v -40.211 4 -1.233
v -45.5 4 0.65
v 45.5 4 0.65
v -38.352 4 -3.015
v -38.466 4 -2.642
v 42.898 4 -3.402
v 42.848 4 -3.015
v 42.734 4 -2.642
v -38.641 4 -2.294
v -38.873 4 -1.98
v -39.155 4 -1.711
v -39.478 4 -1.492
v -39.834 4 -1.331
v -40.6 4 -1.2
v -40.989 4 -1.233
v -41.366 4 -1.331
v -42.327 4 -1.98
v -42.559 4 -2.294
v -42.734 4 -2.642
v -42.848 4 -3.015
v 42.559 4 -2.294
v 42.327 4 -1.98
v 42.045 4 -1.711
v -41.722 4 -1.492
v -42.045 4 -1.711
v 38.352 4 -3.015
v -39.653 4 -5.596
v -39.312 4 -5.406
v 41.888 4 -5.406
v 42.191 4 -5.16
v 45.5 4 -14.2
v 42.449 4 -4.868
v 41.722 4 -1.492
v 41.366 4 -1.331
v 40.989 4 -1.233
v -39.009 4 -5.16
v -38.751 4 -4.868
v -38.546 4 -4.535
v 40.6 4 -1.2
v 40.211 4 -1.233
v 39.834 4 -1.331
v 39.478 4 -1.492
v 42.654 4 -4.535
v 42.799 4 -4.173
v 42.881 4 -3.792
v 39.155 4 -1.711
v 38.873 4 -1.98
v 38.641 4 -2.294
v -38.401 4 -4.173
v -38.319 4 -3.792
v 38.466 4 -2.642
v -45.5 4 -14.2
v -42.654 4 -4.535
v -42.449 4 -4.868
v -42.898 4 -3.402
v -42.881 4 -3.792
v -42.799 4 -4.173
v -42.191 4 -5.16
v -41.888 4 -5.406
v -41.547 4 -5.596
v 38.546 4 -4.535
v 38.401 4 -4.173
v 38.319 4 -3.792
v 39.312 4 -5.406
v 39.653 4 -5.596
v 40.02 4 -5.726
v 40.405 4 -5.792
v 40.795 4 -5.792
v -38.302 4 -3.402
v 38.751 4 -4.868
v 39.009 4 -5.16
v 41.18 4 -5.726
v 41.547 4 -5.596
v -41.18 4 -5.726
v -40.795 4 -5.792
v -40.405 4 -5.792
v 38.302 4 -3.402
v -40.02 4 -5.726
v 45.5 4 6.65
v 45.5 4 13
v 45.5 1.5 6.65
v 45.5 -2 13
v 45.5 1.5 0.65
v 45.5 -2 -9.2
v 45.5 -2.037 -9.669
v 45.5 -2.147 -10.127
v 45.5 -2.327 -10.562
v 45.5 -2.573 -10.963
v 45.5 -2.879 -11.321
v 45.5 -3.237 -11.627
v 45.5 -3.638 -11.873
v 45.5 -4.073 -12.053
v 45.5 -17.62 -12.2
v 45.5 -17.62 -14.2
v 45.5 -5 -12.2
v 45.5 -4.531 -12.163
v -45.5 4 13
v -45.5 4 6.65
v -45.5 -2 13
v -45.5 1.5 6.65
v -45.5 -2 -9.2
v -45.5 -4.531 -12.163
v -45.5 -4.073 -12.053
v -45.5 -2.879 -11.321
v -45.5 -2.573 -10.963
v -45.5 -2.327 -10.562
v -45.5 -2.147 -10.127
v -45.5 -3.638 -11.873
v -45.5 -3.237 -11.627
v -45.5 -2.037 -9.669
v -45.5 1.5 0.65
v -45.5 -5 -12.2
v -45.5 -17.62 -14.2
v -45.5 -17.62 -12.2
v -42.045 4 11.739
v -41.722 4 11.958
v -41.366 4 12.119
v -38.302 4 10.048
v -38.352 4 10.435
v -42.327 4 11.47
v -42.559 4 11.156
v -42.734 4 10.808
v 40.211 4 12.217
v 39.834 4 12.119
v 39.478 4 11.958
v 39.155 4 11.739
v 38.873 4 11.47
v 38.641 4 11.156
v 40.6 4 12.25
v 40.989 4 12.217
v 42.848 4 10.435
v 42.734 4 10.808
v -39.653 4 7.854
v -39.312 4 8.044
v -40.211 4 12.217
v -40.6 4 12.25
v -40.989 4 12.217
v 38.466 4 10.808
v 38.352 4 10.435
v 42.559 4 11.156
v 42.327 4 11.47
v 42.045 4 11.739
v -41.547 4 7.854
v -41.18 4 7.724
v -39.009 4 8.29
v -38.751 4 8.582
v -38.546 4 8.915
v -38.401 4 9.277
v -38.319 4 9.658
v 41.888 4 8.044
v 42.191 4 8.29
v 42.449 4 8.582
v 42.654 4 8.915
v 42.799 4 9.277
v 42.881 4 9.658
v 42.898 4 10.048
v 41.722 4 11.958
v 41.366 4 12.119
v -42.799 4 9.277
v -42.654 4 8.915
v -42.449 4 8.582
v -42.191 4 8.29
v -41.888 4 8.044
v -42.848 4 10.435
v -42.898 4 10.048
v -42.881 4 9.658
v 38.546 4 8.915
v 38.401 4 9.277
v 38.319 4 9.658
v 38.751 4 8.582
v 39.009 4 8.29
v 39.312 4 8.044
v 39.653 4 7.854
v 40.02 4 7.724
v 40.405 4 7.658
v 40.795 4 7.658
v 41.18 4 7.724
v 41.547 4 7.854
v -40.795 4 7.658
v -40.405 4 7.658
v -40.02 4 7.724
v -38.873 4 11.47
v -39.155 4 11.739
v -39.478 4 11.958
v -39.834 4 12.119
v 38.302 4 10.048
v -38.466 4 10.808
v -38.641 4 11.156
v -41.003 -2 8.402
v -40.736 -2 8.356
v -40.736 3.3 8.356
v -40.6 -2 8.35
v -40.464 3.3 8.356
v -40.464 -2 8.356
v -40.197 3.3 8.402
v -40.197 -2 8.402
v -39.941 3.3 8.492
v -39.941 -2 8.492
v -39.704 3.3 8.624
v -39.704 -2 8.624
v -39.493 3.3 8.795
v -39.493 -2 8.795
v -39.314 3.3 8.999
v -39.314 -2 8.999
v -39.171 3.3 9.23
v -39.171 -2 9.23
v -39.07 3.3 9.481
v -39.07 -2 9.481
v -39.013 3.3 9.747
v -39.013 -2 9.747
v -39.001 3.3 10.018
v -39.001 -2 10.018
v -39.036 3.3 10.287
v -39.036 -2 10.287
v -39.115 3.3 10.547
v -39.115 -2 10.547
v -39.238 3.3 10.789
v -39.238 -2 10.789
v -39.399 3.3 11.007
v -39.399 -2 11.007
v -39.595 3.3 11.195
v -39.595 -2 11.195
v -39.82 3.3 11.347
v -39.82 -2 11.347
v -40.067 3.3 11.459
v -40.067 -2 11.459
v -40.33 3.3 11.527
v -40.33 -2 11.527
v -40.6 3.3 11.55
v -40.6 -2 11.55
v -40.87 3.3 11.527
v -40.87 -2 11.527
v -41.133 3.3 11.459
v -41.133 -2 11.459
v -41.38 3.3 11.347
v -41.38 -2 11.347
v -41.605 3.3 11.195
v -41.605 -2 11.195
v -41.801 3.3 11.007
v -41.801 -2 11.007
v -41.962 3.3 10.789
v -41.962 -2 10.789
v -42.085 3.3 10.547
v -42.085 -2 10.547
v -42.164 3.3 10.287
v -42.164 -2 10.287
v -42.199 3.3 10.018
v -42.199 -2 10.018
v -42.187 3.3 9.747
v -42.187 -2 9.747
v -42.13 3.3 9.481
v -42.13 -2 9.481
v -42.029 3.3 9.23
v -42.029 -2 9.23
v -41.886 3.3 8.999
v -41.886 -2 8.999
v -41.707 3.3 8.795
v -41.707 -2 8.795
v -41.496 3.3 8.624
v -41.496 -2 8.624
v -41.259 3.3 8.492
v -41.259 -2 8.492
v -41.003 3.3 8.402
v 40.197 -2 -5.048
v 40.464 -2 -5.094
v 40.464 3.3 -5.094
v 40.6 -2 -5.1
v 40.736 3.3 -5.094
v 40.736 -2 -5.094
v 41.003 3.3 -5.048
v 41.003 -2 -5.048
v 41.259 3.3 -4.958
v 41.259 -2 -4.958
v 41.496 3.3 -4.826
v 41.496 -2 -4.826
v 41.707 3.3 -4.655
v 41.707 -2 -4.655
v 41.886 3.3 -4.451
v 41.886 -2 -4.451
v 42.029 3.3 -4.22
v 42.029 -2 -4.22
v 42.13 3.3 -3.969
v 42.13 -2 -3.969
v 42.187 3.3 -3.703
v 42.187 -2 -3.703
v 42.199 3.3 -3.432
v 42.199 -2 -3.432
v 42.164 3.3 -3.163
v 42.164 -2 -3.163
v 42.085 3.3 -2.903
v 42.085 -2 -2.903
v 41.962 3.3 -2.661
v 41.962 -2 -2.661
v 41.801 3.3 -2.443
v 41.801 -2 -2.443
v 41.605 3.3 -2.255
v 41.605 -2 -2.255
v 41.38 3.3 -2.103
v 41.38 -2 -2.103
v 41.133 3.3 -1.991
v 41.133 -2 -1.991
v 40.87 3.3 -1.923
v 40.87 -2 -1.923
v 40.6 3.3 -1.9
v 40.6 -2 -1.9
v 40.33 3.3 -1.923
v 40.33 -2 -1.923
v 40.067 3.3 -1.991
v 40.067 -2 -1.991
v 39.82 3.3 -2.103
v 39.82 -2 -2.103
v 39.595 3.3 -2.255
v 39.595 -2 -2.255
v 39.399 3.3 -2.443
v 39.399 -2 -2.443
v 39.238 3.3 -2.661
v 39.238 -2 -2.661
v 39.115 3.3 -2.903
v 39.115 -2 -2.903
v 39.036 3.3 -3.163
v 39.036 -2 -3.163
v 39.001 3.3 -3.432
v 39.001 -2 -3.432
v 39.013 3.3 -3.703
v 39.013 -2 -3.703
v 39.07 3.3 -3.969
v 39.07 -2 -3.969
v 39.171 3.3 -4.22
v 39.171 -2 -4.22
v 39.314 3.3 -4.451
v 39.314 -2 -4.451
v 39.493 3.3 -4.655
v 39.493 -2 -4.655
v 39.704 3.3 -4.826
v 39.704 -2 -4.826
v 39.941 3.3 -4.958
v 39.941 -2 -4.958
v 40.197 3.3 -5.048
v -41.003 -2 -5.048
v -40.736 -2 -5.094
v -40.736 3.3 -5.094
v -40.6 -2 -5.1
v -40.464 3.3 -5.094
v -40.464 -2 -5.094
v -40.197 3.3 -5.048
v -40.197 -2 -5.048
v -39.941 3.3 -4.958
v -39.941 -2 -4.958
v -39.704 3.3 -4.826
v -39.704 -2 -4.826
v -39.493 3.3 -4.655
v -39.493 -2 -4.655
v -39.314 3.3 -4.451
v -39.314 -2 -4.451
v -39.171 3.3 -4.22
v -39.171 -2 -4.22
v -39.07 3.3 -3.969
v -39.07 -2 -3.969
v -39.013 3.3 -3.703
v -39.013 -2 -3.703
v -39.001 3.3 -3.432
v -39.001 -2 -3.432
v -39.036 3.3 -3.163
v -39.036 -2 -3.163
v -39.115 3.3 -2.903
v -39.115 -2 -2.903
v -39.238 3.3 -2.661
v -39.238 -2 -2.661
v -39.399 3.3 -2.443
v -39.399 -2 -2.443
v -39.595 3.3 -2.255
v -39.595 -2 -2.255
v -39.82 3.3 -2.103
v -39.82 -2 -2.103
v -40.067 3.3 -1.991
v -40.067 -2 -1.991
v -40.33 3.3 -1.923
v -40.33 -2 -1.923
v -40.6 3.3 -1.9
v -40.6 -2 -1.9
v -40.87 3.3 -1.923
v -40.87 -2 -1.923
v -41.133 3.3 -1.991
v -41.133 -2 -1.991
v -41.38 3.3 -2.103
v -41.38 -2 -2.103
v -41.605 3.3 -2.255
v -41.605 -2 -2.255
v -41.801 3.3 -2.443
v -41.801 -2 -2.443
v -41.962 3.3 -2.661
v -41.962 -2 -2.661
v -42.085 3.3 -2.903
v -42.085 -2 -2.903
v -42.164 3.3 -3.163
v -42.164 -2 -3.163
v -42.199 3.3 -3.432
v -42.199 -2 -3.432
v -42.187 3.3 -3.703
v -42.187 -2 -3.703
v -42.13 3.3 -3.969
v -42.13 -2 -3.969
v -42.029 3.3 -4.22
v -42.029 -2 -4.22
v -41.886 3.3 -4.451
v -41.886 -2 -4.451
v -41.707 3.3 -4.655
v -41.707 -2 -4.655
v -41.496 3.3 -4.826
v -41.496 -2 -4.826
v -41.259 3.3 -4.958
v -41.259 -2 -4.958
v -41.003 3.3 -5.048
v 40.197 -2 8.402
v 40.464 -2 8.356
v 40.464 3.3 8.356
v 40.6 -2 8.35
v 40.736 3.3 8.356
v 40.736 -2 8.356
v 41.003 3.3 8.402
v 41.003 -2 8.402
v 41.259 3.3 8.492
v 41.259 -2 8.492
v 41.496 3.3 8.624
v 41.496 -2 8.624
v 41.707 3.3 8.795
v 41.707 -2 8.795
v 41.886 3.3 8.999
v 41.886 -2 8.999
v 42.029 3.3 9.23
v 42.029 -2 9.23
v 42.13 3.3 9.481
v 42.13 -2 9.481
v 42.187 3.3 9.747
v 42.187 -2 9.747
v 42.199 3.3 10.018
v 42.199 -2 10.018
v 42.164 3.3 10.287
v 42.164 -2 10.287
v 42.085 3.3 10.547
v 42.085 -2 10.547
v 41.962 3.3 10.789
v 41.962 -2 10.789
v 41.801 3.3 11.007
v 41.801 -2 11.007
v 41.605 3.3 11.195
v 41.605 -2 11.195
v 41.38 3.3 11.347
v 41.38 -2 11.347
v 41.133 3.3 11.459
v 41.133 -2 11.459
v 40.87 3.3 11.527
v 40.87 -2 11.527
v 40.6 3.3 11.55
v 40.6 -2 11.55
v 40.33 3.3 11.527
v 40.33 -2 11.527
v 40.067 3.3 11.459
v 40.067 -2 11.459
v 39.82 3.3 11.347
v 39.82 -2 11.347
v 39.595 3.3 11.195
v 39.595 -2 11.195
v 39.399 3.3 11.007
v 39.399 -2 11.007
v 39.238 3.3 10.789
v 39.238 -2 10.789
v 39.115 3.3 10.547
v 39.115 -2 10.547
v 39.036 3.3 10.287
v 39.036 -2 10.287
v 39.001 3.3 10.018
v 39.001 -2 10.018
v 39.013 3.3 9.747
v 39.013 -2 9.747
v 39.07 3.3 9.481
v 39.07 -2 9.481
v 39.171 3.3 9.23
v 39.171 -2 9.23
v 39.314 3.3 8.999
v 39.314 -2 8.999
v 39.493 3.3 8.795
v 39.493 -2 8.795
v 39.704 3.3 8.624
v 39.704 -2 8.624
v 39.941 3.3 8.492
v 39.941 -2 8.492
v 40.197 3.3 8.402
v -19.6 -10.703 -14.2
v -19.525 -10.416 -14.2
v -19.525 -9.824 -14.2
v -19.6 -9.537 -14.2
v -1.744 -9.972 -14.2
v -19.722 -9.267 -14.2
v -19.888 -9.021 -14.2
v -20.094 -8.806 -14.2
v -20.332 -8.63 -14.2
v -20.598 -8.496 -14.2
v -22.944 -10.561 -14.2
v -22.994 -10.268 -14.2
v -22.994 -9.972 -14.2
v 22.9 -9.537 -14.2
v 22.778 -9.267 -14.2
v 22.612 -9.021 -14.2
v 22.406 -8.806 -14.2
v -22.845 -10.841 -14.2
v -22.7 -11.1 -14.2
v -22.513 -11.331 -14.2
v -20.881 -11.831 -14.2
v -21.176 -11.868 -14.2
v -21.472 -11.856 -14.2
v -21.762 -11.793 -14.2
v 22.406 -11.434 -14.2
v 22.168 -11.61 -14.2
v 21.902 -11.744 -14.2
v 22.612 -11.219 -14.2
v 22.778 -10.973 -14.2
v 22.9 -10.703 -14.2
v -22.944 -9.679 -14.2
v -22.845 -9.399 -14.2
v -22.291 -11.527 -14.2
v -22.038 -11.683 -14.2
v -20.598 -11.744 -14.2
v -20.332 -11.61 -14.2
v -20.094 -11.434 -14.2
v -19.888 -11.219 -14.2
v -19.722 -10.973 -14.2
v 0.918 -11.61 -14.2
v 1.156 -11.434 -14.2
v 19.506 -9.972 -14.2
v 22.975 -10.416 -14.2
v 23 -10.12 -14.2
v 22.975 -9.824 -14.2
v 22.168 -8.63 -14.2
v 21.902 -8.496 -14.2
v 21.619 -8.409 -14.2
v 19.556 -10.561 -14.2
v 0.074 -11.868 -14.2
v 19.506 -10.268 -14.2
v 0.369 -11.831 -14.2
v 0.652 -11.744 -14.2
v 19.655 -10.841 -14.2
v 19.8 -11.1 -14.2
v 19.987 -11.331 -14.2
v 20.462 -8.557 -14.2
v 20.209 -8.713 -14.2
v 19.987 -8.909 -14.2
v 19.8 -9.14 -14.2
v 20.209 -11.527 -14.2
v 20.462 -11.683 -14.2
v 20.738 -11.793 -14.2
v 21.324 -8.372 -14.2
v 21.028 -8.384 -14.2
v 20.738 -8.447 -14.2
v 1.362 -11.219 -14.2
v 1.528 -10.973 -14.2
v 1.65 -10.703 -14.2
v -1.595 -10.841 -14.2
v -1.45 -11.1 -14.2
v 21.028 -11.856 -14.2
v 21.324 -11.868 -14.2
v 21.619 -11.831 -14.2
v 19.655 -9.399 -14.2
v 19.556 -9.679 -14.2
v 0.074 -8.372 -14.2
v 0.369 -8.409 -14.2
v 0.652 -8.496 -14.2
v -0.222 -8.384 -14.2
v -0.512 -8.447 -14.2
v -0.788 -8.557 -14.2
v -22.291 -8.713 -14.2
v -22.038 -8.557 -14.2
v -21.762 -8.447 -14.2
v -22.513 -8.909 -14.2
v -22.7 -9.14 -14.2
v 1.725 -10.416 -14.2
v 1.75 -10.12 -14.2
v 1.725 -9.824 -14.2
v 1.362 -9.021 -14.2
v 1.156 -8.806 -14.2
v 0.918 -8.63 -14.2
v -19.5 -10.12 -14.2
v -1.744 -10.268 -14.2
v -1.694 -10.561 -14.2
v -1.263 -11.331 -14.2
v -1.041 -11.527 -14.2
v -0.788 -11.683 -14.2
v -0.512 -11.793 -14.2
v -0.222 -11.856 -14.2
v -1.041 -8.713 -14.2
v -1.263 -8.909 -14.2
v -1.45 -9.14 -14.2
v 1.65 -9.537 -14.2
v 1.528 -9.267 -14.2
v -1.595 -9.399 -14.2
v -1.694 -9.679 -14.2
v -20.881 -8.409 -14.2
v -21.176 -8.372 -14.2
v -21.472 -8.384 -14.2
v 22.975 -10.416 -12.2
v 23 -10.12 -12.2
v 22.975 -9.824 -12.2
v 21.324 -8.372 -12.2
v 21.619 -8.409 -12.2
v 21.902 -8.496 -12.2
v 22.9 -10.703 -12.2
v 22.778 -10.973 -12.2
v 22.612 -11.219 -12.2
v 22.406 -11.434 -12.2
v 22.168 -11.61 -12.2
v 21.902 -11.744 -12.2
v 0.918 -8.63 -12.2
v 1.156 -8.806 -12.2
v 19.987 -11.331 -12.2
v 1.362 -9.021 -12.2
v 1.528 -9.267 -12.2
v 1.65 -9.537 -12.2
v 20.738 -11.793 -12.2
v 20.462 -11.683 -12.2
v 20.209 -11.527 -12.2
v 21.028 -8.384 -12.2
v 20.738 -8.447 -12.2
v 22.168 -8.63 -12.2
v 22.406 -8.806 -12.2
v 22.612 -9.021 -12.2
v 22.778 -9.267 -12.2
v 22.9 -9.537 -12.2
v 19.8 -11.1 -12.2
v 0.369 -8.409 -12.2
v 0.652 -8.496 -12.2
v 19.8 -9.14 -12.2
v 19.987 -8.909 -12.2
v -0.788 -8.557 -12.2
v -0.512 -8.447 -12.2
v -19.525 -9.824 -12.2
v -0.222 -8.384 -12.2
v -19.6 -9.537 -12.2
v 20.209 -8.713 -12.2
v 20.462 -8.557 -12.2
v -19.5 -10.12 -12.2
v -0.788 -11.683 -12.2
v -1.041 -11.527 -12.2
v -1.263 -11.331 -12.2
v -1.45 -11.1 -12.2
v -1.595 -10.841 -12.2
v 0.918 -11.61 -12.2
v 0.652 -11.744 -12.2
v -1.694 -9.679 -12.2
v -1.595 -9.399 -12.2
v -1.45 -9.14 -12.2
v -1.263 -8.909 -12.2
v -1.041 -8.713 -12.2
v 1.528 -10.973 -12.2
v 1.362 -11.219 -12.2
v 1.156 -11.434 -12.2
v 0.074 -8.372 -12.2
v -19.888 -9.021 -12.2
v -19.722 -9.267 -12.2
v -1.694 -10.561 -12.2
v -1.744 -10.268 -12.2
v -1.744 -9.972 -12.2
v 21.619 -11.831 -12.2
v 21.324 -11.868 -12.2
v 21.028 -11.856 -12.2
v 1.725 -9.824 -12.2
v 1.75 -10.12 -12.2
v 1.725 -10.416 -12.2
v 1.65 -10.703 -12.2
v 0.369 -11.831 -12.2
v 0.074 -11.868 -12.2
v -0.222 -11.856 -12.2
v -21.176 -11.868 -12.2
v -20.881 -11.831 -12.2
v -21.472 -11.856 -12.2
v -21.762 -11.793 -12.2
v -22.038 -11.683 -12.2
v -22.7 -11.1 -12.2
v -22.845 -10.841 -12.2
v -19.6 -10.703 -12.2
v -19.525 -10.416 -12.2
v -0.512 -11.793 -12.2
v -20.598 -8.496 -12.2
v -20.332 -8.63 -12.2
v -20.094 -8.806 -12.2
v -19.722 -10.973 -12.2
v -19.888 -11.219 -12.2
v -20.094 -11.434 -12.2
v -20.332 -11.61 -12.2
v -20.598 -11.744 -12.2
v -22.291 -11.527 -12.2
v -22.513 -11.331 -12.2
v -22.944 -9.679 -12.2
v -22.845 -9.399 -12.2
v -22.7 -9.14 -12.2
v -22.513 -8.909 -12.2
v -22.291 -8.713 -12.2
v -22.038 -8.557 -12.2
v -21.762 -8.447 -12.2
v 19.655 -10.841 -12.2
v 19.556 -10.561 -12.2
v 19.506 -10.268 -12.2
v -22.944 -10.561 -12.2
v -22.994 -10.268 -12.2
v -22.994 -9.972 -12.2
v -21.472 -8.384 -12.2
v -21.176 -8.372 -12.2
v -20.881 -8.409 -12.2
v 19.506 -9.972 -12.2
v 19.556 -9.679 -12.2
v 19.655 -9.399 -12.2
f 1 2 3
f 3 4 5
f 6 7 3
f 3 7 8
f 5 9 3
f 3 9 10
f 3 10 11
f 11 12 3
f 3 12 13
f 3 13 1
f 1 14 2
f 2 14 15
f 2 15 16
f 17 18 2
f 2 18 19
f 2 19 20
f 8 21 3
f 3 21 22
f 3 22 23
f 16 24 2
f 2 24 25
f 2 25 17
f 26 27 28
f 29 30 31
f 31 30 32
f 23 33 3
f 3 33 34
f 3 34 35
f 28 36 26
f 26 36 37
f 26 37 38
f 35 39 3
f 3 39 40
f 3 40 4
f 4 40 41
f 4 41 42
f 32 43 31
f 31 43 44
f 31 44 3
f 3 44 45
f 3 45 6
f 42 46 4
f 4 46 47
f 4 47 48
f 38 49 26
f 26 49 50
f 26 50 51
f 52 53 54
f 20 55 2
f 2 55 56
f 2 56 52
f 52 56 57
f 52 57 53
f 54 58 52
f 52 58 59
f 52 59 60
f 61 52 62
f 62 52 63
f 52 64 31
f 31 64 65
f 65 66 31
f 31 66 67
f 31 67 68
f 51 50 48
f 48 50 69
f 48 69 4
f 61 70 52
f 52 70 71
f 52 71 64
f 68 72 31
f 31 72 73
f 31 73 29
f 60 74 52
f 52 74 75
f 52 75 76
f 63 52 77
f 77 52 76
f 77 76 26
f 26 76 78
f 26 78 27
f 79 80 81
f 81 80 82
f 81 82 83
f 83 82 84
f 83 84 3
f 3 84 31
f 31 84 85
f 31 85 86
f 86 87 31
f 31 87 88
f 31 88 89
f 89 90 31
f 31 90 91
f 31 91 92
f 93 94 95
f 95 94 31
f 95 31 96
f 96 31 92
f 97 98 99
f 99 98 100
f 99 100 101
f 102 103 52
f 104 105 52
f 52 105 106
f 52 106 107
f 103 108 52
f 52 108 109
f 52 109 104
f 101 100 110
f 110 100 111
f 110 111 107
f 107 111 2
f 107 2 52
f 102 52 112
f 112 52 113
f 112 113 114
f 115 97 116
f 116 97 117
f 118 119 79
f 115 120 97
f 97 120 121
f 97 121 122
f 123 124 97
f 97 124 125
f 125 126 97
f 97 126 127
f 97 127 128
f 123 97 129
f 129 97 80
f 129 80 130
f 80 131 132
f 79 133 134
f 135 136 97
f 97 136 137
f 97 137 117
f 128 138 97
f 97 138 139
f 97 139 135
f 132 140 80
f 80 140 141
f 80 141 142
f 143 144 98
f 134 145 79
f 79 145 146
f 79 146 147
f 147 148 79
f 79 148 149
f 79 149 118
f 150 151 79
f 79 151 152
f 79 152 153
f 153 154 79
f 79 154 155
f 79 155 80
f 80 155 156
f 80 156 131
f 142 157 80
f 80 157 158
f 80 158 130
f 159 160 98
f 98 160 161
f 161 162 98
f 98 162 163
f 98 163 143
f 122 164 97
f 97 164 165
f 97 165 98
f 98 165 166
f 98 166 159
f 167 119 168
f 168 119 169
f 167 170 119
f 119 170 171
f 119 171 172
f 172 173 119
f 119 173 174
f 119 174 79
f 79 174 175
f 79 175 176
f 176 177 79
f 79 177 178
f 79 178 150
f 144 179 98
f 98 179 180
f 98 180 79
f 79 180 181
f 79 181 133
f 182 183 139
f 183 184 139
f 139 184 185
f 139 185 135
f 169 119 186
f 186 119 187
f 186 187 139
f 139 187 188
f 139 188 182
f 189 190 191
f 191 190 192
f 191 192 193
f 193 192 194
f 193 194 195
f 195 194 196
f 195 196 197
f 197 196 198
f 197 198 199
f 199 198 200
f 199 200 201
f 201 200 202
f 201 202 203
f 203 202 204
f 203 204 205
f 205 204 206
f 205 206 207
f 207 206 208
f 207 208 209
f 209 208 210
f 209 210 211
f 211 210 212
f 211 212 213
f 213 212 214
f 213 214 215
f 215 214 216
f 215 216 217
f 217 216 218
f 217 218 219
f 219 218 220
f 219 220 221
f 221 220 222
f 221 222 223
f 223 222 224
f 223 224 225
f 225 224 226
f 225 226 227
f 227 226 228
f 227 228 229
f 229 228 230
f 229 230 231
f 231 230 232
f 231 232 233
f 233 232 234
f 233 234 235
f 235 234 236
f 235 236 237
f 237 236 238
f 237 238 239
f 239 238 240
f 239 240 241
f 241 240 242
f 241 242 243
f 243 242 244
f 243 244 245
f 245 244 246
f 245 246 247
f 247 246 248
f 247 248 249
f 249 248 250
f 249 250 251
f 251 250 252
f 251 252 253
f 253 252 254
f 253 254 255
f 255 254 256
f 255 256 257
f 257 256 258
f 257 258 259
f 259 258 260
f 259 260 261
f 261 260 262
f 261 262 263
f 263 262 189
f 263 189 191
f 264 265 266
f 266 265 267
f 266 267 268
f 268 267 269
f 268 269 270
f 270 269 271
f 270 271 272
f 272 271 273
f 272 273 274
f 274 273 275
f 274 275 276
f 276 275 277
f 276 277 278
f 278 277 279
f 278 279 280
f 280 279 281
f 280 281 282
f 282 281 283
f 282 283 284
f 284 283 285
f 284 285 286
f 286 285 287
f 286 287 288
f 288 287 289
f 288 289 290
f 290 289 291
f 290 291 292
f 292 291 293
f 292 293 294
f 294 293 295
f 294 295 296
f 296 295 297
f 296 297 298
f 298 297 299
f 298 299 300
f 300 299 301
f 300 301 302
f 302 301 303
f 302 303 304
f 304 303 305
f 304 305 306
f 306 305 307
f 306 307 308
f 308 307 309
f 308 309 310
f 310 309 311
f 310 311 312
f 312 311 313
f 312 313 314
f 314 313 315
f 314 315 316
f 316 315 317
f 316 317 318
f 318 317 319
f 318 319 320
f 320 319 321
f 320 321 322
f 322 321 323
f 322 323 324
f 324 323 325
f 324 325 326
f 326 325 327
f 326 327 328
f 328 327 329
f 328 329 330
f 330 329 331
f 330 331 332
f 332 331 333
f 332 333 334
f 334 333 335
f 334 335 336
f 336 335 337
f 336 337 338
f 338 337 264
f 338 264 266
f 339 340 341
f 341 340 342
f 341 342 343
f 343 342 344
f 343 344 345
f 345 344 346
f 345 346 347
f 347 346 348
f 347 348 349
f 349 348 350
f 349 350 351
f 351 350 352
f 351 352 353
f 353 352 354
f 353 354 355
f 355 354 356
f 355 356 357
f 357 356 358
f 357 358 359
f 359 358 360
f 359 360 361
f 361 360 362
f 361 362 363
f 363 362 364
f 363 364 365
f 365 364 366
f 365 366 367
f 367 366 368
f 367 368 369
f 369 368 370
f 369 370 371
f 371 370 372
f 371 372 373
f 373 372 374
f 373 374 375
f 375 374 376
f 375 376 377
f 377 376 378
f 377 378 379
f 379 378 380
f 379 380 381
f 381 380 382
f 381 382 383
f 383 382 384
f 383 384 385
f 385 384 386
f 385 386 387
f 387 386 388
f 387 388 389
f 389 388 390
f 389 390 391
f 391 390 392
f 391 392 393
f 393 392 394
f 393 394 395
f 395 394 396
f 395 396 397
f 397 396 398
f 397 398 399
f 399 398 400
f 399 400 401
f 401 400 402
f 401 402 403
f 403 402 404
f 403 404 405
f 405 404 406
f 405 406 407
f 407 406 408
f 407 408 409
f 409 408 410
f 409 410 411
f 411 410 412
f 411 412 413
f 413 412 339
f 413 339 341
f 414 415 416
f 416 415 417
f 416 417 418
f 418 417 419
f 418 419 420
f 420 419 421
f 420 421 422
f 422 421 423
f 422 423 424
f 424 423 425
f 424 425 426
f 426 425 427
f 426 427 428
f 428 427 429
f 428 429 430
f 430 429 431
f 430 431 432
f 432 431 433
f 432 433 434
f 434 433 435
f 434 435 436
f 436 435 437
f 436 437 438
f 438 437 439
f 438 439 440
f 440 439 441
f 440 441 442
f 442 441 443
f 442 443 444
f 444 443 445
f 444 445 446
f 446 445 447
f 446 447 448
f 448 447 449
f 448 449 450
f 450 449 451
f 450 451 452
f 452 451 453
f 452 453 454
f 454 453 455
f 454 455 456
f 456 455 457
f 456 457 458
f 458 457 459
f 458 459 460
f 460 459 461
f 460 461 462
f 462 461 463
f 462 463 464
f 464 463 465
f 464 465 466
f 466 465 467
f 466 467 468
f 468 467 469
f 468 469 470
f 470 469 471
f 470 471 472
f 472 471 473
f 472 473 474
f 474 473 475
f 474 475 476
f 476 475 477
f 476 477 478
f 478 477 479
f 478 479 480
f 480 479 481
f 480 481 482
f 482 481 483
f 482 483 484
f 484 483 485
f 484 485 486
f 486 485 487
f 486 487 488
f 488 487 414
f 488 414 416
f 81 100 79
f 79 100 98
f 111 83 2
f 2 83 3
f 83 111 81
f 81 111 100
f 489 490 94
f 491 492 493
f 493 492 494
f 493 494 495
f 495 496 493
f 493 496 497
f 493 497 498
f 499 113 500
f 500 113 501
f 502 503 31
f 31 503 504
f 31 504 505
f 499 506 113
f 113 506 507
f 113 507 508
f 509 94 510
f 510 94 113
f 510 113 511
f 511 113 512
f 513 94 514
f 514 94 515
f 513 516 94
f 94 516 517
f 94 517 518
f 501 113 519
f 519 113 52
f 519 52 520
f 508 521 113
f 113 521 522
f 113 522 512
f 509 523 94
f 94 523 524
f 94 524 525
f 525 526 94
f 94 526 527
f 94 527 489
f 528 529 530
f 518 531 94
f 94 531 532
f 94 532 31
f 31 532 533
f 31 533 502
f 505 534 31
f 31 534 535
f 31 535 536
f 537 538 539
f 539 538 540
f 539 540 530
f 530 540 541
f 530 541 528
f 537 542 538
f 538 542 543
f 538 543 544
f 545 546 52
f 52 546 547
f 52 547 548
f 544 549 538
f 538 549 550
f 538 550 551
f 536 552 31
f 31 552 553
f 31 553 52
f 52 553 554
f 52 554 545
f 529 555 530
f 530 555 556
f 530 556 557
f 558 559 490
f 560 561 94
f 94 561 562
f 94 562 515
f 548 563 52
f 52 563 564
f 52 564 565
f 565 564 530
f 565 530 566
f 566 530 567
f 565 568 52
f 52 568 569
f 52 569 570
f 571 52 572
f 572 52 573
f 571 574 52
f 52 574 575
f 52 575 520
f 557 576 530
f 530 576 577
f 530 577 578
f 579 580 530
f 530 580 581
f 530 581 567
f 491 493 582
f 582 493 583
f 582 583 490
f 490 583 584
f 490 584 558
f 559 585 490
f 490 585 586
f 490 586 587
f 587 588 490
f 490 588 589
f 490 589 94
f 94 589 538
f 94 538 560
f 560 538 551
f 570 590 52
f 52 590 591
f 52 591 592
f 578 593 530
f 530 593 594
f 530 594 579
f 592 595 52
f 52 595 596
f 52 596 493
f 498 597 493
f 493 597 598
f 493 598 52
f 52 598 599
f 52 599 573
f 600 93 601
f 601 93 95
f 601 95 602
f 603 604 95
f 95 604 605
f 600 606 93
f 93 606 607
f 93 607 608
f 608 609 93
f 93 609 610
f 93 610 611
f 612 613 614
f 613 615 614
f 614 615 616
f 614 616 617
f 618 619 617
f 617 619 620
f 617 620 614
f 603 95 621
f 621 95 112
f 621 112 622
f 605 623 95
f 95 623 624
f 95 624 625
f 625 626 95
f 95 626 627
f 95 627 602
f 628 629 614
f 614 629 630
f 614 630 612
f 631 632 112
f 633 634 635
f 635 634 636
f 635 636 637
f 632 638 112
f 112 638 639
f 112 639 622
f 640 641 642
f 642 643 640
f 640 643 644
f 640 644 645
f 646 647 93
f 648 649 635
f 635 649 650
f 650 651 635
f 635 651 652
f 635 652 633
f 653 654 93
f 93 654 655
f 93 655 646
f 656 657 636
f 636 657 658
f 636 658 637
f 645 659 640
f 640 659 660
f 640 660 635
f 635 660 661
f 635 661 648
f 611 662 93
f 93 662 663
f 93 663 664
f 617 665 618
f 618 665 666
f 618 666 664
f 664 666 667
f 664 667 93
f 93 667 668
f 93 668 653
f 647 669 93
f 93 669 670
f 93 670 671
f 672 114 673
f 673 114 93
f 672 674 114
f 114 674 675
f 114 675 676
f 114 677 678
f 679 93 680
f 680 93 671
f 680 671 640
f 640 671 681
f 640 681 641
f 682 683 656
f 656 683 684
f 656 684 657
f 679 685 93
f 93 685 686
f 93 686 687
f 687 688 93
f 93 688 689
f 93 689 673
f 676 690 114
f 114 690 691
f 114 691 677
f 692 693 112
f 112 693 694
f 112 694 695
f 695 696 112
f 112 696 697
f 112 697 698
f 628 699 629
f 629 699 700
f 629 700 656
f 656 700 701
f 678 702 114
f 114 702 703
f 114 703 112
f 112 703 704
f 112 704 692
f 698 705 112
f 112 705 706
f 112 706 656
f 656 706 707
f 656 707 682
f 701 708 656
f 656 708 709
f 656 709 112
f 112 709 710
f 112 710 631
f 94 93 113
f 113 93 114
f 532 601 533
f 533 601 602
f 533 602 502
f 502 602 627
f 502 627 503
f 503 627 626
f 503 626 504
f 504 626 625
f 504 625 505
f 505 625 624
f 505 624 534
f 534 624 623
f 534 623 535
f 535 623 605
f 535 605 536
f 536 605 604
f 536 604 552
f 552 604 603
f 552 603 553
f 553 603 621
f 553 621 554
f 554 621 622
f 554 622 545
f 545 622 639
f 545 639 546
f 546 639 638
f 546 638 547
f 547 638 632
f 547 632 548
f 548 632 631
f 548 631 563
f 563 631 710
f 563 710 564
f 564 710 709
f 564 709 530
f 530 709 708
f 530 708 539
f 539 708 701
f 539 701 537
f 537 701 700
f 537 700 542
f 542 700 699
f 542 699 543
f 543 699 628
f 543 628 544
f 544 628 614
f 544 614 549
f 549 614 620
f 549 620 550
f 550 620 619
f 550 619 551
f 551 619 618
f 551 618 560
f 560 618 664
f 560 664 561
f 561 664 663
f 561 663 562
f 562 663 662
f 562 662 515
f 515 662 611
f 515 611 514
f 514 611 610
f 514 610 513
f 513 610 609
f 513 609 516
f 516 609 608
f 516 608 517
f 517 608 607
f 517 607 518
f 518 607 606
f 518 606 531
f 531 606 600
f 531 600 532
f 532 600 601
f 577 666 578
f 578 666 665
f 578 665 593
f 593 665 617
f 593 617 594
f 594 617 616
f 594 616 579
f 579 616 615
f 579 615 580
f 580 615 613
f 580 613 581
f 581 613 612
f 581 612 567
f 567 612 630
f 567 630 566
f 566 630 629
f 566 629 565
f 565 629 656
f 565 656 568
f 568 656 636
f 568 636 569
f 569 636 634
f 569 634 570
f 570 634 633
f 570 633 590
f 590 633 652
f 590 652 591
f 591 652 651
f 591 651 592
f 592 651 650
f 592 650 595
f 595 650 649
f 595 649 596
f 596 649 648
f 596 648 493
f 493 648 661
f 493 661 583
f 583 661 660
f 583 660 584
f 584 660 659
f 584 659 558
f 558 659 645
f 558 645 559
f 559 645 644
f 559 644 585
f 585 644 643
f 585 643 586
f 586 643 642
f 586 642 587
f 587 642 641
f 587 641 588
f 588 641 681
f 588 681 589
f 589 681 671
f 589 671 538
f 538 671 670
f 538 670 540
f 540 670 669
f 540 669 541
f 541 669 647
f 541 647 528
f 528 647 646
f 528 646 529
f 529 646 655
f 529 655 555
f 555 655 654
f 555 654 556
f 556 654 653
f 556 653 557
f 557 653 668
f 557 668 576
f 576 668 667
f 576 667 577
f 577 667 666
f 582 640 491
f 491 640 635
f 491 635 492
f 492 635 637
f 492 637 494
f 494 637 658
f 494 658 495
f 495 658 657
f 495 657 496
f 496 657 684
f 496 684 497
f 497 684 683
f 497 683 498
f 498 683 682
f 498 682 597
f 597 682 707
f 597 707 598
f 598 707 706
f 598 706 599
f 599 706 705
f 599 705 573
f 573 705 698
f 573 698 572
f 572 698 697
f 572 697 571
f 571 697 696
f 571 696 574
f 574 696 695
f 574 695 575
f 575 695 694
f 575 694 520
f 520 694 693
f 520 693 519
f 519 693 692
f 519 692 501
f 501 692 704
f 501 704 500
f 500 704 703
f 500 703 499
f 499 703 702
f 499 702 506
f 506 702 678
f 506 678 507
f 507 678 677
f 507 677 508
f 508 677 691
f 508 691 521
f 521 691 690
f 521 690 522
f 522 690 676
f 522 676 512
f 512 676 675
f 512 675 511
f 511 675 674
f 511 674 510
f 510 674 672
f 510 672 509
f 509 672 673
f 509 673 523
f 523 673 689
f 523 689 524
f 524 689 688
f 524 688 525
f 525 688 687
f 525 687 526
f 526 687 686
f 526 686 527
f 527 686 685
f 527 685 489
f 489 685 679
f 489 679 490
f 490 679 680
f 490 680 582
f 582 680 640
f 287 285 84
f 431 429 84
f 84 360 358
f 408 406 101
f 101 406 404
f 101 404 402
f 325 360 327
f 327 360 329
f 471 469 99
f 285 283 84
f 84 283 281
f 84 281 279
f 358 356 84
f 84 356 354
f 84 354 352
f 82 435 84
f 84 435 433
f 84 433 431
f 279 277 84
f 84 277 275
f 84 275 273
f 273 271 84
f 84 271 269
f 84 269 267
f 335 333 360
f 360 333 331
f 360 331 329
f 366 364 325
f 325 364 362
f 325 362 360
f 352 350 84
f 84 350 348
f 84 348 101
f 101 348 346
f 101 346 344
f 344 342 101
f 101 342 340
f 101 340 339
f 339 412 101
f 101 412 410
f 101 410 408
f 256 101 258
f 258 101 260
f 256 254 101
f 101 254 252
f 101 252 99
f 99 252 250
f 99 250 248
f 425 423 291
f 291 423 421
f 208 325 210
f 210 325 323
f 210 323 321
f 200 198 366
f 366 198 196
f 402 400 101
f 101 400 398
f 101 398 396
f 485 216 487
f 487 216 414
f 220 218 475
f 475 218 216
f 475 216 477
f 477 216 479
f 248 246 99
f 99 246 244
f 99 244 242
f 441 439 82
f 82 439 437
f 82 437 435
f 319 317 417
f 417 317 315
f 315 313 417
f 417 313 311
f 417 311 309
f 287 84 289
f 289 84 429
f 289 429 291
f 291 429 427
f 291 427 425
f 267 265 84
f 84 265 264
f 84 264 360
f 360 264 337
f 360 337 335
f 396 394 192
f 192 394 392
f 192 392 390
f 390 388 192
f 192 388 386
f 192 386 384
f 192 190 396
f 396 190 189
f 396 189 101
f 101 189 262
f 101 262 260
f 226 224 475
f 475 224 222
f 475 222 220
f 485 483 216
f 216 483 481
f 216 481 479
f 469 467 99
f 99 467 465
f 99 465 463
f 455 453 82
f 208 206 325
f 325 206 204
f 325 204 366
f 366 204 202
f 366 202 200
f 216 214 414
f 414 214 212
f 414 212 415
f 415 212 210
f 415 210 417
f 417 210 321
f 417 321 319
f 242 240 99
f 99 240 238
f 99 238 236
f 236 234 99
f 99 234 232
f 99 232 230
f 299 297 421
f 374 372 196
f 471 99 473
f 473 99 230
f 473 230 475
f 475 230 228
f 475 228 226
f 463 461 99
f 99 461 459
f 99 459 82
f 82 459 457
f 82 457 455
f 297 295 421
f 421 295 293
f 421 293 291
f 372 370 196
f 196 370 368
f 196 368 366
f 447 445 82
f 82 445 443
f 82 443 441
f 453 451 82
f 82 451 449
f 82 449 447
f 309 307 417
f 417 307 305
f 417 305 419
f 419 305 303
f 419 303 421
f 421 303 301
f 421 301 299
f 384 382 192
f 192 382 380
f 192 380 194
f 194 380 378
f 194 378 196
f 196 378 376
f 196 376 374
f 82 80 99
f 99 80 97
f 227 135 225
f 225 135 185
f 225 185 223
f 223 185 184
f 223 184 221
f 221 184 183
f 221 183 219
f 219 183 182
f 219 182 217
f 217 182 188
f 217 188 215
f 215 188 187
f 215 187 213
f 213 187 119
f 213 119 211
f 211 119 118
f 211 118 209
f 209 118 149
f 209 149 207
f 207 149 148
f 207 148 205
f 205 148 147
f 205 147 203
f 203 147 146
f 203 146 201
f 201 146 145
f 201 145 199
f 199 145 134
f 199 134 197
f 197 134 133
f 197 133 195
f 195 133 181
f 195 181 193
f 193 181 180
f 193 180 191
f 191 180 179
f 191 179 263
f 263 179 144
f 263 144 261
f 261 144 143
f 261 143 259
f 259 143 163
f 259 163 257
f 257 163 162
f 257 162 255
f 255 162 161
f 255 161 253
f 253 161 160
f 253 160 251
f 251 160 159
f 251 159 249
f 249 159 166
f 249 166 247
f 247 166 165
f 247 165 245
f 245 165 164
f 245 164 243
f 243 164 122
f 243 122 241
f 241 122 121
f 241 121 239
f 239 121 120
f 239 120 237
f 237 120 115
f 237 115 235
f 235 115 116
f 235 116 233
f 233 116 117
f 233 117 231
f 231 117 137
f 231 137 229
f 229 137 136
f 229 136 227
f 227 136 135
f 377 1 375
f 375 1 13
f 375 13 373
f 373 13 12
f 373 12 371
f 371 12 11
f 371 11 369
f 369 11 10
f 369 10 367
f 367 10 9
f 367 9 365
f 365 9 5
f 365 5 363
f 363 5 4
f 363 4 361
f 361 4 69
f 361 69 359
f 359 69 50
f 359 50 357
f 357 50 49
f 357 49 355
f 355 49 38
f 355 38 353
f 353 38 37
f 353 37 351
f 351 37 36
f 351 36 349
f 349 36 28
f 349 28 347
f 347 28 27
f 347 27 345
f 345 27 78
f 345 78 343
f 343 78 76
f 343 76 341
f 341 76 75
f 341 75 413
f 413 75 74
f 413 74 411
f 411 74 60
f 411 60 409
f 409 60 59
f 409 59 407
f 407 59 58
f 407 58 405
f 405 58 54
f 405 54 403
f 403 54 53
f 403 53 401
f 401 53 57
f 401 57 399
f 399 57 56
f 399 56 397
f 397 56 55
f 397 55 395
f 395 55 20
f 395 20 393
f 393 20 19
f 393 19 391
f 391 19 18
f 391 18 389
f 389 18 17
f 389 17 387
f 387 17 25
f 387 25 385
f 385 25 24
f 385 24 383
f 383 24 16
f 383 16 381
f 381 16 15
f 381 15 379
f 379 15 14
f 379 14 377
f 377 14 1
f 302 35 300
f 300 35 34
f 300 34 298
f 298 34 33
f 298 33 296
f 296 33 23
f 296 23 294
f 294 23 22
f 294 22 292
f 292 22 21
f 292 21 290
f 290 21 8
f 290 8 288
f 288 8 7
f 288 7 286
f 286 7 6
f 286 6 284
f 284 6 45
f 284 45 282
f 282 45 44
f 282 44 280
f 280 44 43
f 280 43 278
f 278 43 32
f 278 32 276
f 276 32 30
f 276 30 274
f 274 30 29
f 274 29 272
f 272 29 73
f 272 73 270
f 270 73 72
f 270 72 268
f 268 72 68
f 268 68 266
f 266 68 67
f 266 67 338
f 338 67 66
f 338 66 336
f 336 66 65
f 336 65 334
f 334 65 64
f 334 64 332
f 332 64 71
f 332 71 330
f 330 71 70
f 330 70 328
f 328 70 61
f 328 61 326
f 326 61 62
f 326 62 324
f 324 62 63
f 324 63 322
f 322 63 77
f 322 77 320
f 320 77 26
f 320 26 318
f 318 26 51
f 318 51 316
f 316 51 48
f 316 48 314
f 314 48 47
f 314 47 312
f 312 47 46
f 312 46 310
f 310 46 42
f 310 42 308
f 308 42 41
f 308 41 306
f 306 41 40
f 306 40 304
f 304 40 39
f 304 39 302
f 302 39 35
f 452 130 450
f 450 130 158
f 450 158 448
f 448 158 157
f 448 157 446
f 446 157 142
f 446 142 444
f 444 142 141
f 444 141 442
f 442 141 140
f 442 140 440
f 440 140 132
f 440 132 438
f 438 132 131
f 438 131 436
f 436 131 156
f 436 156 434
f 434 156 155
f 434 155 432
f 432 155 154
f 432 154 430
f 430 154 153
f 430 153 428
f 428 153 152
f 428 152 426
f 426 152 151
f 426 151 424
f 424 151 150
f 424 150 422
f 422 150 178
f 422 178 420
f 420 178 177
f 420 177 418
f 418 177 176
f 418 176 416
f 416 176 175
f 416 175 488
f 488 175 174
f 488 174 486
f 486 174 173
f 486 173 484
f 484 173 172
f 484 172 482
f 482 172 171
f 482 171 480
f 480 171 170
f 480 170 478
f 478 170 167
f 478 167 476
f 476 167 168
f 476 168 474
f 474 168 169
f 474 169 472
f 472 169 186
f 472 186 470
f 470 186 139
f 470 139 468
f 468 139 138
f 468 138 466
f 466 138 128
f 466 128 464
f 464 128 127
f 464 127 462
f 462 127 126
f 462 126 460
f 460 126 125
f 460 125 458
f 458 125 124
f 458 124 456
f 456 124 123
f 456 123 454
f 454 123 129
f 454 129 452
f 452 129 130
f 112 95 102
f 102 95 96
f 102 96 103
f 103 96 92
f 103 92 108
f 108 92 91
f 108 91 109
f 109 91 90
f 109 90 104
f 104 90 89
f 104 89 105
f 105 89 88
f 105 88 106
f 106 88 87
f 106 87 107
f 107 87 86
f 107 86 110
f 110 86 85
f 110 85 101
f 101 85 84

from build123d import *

# Parameters (mm, degrees)
SKETCH1_W           = 91
SKETCH1_H           = 24
BOSS_EXTRUDE1_DEPTH = 4
SKETCH2_R           = 1.675
CUT_EXTRUDE1_DEPTH  = 48.22552276
SKETCH3_W           = 91
SKETCH3_H           = 6
CUT_EXTRUDE2_DEPTH  = 2.5
SKETCH4_W           = 91
SKETCH4_H           = 4
BOSS_EXTRUDE2_DEPTH = 2.2
SKETCH5_W           = 91
SKETCH5_H           = 2
BOSS_EXTRUDE3_DEPTH = 17.62
SKETCH6_R           = 1.75
CUT_EXTRUDE3_DEPTH  = 55.464248824
SKETCH7_W           = 91
SKETCH7_H           = 24.2
SKETCH7_R           = 1.675
BOSS_EXTRUDE5_DEPTH = 2
SKETCH8_W           = 91
SKETCH8_H           = 6
BOSS_EXTRUDE6_DEPTH = 1
CHAMFER1_SIZE       = 0.7
FILLET1_R           = 3


with BuildPart() as part:
    # Sketch1 → Boss-Extrude1 (new body)
    with BuildSketch(Plane(origin=(0, 0, 0), x_dir=(1, 0, 0), z_dir=(0, 1, 0))):
        Rectangle(SKETCH1_W, SKETCH1_H)
    extrude(amount=BOSS_EXTRUDE1_DEPTH)

    # Sketch2 → Cut-Extrude1 (cut, through all)
    with BuildSketch(Plane(origin=(0, 4, 0), x_dir=(1, 0, 0), z_dir=(0, 1, 0))):
        with Locations(Location((-40.6, 3.5, 0), (0, 0, 270))):
            Circle(SKETCH2_R)
        with Locations(Location((-40.6, -9.95, 0), (0, 0, 270))):
            Circle(SKETCH2_R)
        with Locations(Location((40.6, 3.5, 0), (0, 0, 270))):
            Circle(SKETCH2_R)
        with Locations(Location((40.6, -9.95, 0), (0, 0, 270))):
            Circle(SKETCH2_R)
    extrude(amount=-CUT_EXTRUDE1_DEPTH, mode=Mode.SUBTRACT)

    # Sketch3 → Cut-Extrude2 (cut)
    with BuildSketch(Plane(origin=(0, 4, 0), x_dir=(1, 0, 0), z_dir=(0, 1, 0))):
        with Locations((0, -3.65)):
            Rectangle(SKETCH3_W, SKETCH3_H)
    extrude(amount=-CUT_EXTRUDE2_DEPTH, mode=Mode.SUBTRACT)

    # Sketch4 → Boss-Extrude2 (add)
    with BuildSketch(Plane(origin=(0, 0, -12), x_dir=(-1, 0, 0), z_dir=(0, 0, -1))):
        with Locations((0, 2)):
            Rectangle(SKETCH4_W, SKETCH4_H)
    extrude(amount=BOSS_EXTRUDE2_DEPTH)

    # Sketch5 → Boss-Extrude3 (add)
    with BuildSketch(Plane.XZ):
        with Locations((0, -13.2)):
            Rectangle(SKETCH5_W, SKETCH5_H)
    extrude(amount=BOSS_EXTRUDE3_DEPTH)

    # Sketch6 → Cut-Extrude3 (cut, through all)
    with BuildSketch(Plane.XY.offset(-12.2)):
        with Locations((-21.25, -10.12)):
            Circle(SKETCH6_R)
        with Locations((0, -10.12)):
            Circle(SKETCH6_R)
        with Locations((21.25, -10.12)):
            Circle(SKETCH6_R)
    extrude(amount=-CUT_EXTRUDE3_DEPTH, mode=Mode.SUBTRACT)

    # Sketch7 → Boss-Extrude5 (add)
    with BuildSketch(Plane.XZ):
        with Locations((0, -0.1)):
            Rectangle(SKETCH7_W, SKETCH7_H)
        with Locations(Location((40.6, 9.95, 0), (0, 0, 90))):
            Circle(SKETCH7_R, mode=Mode.SUBTRACT)
        with Locations(Location((40.6, -3.5, 0), (0, 0, 90))):
            Circle(SKETCH7_R, mode=Mode.SUBTRACT)
        with Locations(Location((-40.6, -3.5, 0), (0, 0, 90))):
            Circle(SKETCH7_R, mode=Mode.SUBTRACT)
        with Locations(Location((-40.6, 9.95, 0), (0, 0, 90))):
            Circle(SKETCH7_R, mode=Mode.SUBTRACT)
    extrude(amount=BOSS_EXTRUDE5_DEPTH)

    # Sketch8 → Boss-Extrude6 (add)
    with BuildSketch(Plane.XY.offset(12)):
        with Locations((0, 1)):
            Rectangle(SKETCH8_W, SKETCH8_H)
    extrude(amount=BOSS_EXTRUDE6_DEPTH)

    # Chamfer1
    chamfer1_edges = [part.edges().sort_by_distance(p)[0] for p in [
        (40.6, 4, 8.275),
        (-40.6, 4, -5.175),
        (40.6, 4, -5.175),
        (-40.6, 4, 8.275),
    ]]
    chamfer(chamfer1_edges, length=CHAMFER1_SIZE)

    # Fillet1
    fillet1_edges = [part.edges().sort_by_distance(p)[0] for p in [
        (0, -2, -12.2),
    ]]
    fillet(fillet1_edges, radius=FILLET1_R)


solid = part.part
